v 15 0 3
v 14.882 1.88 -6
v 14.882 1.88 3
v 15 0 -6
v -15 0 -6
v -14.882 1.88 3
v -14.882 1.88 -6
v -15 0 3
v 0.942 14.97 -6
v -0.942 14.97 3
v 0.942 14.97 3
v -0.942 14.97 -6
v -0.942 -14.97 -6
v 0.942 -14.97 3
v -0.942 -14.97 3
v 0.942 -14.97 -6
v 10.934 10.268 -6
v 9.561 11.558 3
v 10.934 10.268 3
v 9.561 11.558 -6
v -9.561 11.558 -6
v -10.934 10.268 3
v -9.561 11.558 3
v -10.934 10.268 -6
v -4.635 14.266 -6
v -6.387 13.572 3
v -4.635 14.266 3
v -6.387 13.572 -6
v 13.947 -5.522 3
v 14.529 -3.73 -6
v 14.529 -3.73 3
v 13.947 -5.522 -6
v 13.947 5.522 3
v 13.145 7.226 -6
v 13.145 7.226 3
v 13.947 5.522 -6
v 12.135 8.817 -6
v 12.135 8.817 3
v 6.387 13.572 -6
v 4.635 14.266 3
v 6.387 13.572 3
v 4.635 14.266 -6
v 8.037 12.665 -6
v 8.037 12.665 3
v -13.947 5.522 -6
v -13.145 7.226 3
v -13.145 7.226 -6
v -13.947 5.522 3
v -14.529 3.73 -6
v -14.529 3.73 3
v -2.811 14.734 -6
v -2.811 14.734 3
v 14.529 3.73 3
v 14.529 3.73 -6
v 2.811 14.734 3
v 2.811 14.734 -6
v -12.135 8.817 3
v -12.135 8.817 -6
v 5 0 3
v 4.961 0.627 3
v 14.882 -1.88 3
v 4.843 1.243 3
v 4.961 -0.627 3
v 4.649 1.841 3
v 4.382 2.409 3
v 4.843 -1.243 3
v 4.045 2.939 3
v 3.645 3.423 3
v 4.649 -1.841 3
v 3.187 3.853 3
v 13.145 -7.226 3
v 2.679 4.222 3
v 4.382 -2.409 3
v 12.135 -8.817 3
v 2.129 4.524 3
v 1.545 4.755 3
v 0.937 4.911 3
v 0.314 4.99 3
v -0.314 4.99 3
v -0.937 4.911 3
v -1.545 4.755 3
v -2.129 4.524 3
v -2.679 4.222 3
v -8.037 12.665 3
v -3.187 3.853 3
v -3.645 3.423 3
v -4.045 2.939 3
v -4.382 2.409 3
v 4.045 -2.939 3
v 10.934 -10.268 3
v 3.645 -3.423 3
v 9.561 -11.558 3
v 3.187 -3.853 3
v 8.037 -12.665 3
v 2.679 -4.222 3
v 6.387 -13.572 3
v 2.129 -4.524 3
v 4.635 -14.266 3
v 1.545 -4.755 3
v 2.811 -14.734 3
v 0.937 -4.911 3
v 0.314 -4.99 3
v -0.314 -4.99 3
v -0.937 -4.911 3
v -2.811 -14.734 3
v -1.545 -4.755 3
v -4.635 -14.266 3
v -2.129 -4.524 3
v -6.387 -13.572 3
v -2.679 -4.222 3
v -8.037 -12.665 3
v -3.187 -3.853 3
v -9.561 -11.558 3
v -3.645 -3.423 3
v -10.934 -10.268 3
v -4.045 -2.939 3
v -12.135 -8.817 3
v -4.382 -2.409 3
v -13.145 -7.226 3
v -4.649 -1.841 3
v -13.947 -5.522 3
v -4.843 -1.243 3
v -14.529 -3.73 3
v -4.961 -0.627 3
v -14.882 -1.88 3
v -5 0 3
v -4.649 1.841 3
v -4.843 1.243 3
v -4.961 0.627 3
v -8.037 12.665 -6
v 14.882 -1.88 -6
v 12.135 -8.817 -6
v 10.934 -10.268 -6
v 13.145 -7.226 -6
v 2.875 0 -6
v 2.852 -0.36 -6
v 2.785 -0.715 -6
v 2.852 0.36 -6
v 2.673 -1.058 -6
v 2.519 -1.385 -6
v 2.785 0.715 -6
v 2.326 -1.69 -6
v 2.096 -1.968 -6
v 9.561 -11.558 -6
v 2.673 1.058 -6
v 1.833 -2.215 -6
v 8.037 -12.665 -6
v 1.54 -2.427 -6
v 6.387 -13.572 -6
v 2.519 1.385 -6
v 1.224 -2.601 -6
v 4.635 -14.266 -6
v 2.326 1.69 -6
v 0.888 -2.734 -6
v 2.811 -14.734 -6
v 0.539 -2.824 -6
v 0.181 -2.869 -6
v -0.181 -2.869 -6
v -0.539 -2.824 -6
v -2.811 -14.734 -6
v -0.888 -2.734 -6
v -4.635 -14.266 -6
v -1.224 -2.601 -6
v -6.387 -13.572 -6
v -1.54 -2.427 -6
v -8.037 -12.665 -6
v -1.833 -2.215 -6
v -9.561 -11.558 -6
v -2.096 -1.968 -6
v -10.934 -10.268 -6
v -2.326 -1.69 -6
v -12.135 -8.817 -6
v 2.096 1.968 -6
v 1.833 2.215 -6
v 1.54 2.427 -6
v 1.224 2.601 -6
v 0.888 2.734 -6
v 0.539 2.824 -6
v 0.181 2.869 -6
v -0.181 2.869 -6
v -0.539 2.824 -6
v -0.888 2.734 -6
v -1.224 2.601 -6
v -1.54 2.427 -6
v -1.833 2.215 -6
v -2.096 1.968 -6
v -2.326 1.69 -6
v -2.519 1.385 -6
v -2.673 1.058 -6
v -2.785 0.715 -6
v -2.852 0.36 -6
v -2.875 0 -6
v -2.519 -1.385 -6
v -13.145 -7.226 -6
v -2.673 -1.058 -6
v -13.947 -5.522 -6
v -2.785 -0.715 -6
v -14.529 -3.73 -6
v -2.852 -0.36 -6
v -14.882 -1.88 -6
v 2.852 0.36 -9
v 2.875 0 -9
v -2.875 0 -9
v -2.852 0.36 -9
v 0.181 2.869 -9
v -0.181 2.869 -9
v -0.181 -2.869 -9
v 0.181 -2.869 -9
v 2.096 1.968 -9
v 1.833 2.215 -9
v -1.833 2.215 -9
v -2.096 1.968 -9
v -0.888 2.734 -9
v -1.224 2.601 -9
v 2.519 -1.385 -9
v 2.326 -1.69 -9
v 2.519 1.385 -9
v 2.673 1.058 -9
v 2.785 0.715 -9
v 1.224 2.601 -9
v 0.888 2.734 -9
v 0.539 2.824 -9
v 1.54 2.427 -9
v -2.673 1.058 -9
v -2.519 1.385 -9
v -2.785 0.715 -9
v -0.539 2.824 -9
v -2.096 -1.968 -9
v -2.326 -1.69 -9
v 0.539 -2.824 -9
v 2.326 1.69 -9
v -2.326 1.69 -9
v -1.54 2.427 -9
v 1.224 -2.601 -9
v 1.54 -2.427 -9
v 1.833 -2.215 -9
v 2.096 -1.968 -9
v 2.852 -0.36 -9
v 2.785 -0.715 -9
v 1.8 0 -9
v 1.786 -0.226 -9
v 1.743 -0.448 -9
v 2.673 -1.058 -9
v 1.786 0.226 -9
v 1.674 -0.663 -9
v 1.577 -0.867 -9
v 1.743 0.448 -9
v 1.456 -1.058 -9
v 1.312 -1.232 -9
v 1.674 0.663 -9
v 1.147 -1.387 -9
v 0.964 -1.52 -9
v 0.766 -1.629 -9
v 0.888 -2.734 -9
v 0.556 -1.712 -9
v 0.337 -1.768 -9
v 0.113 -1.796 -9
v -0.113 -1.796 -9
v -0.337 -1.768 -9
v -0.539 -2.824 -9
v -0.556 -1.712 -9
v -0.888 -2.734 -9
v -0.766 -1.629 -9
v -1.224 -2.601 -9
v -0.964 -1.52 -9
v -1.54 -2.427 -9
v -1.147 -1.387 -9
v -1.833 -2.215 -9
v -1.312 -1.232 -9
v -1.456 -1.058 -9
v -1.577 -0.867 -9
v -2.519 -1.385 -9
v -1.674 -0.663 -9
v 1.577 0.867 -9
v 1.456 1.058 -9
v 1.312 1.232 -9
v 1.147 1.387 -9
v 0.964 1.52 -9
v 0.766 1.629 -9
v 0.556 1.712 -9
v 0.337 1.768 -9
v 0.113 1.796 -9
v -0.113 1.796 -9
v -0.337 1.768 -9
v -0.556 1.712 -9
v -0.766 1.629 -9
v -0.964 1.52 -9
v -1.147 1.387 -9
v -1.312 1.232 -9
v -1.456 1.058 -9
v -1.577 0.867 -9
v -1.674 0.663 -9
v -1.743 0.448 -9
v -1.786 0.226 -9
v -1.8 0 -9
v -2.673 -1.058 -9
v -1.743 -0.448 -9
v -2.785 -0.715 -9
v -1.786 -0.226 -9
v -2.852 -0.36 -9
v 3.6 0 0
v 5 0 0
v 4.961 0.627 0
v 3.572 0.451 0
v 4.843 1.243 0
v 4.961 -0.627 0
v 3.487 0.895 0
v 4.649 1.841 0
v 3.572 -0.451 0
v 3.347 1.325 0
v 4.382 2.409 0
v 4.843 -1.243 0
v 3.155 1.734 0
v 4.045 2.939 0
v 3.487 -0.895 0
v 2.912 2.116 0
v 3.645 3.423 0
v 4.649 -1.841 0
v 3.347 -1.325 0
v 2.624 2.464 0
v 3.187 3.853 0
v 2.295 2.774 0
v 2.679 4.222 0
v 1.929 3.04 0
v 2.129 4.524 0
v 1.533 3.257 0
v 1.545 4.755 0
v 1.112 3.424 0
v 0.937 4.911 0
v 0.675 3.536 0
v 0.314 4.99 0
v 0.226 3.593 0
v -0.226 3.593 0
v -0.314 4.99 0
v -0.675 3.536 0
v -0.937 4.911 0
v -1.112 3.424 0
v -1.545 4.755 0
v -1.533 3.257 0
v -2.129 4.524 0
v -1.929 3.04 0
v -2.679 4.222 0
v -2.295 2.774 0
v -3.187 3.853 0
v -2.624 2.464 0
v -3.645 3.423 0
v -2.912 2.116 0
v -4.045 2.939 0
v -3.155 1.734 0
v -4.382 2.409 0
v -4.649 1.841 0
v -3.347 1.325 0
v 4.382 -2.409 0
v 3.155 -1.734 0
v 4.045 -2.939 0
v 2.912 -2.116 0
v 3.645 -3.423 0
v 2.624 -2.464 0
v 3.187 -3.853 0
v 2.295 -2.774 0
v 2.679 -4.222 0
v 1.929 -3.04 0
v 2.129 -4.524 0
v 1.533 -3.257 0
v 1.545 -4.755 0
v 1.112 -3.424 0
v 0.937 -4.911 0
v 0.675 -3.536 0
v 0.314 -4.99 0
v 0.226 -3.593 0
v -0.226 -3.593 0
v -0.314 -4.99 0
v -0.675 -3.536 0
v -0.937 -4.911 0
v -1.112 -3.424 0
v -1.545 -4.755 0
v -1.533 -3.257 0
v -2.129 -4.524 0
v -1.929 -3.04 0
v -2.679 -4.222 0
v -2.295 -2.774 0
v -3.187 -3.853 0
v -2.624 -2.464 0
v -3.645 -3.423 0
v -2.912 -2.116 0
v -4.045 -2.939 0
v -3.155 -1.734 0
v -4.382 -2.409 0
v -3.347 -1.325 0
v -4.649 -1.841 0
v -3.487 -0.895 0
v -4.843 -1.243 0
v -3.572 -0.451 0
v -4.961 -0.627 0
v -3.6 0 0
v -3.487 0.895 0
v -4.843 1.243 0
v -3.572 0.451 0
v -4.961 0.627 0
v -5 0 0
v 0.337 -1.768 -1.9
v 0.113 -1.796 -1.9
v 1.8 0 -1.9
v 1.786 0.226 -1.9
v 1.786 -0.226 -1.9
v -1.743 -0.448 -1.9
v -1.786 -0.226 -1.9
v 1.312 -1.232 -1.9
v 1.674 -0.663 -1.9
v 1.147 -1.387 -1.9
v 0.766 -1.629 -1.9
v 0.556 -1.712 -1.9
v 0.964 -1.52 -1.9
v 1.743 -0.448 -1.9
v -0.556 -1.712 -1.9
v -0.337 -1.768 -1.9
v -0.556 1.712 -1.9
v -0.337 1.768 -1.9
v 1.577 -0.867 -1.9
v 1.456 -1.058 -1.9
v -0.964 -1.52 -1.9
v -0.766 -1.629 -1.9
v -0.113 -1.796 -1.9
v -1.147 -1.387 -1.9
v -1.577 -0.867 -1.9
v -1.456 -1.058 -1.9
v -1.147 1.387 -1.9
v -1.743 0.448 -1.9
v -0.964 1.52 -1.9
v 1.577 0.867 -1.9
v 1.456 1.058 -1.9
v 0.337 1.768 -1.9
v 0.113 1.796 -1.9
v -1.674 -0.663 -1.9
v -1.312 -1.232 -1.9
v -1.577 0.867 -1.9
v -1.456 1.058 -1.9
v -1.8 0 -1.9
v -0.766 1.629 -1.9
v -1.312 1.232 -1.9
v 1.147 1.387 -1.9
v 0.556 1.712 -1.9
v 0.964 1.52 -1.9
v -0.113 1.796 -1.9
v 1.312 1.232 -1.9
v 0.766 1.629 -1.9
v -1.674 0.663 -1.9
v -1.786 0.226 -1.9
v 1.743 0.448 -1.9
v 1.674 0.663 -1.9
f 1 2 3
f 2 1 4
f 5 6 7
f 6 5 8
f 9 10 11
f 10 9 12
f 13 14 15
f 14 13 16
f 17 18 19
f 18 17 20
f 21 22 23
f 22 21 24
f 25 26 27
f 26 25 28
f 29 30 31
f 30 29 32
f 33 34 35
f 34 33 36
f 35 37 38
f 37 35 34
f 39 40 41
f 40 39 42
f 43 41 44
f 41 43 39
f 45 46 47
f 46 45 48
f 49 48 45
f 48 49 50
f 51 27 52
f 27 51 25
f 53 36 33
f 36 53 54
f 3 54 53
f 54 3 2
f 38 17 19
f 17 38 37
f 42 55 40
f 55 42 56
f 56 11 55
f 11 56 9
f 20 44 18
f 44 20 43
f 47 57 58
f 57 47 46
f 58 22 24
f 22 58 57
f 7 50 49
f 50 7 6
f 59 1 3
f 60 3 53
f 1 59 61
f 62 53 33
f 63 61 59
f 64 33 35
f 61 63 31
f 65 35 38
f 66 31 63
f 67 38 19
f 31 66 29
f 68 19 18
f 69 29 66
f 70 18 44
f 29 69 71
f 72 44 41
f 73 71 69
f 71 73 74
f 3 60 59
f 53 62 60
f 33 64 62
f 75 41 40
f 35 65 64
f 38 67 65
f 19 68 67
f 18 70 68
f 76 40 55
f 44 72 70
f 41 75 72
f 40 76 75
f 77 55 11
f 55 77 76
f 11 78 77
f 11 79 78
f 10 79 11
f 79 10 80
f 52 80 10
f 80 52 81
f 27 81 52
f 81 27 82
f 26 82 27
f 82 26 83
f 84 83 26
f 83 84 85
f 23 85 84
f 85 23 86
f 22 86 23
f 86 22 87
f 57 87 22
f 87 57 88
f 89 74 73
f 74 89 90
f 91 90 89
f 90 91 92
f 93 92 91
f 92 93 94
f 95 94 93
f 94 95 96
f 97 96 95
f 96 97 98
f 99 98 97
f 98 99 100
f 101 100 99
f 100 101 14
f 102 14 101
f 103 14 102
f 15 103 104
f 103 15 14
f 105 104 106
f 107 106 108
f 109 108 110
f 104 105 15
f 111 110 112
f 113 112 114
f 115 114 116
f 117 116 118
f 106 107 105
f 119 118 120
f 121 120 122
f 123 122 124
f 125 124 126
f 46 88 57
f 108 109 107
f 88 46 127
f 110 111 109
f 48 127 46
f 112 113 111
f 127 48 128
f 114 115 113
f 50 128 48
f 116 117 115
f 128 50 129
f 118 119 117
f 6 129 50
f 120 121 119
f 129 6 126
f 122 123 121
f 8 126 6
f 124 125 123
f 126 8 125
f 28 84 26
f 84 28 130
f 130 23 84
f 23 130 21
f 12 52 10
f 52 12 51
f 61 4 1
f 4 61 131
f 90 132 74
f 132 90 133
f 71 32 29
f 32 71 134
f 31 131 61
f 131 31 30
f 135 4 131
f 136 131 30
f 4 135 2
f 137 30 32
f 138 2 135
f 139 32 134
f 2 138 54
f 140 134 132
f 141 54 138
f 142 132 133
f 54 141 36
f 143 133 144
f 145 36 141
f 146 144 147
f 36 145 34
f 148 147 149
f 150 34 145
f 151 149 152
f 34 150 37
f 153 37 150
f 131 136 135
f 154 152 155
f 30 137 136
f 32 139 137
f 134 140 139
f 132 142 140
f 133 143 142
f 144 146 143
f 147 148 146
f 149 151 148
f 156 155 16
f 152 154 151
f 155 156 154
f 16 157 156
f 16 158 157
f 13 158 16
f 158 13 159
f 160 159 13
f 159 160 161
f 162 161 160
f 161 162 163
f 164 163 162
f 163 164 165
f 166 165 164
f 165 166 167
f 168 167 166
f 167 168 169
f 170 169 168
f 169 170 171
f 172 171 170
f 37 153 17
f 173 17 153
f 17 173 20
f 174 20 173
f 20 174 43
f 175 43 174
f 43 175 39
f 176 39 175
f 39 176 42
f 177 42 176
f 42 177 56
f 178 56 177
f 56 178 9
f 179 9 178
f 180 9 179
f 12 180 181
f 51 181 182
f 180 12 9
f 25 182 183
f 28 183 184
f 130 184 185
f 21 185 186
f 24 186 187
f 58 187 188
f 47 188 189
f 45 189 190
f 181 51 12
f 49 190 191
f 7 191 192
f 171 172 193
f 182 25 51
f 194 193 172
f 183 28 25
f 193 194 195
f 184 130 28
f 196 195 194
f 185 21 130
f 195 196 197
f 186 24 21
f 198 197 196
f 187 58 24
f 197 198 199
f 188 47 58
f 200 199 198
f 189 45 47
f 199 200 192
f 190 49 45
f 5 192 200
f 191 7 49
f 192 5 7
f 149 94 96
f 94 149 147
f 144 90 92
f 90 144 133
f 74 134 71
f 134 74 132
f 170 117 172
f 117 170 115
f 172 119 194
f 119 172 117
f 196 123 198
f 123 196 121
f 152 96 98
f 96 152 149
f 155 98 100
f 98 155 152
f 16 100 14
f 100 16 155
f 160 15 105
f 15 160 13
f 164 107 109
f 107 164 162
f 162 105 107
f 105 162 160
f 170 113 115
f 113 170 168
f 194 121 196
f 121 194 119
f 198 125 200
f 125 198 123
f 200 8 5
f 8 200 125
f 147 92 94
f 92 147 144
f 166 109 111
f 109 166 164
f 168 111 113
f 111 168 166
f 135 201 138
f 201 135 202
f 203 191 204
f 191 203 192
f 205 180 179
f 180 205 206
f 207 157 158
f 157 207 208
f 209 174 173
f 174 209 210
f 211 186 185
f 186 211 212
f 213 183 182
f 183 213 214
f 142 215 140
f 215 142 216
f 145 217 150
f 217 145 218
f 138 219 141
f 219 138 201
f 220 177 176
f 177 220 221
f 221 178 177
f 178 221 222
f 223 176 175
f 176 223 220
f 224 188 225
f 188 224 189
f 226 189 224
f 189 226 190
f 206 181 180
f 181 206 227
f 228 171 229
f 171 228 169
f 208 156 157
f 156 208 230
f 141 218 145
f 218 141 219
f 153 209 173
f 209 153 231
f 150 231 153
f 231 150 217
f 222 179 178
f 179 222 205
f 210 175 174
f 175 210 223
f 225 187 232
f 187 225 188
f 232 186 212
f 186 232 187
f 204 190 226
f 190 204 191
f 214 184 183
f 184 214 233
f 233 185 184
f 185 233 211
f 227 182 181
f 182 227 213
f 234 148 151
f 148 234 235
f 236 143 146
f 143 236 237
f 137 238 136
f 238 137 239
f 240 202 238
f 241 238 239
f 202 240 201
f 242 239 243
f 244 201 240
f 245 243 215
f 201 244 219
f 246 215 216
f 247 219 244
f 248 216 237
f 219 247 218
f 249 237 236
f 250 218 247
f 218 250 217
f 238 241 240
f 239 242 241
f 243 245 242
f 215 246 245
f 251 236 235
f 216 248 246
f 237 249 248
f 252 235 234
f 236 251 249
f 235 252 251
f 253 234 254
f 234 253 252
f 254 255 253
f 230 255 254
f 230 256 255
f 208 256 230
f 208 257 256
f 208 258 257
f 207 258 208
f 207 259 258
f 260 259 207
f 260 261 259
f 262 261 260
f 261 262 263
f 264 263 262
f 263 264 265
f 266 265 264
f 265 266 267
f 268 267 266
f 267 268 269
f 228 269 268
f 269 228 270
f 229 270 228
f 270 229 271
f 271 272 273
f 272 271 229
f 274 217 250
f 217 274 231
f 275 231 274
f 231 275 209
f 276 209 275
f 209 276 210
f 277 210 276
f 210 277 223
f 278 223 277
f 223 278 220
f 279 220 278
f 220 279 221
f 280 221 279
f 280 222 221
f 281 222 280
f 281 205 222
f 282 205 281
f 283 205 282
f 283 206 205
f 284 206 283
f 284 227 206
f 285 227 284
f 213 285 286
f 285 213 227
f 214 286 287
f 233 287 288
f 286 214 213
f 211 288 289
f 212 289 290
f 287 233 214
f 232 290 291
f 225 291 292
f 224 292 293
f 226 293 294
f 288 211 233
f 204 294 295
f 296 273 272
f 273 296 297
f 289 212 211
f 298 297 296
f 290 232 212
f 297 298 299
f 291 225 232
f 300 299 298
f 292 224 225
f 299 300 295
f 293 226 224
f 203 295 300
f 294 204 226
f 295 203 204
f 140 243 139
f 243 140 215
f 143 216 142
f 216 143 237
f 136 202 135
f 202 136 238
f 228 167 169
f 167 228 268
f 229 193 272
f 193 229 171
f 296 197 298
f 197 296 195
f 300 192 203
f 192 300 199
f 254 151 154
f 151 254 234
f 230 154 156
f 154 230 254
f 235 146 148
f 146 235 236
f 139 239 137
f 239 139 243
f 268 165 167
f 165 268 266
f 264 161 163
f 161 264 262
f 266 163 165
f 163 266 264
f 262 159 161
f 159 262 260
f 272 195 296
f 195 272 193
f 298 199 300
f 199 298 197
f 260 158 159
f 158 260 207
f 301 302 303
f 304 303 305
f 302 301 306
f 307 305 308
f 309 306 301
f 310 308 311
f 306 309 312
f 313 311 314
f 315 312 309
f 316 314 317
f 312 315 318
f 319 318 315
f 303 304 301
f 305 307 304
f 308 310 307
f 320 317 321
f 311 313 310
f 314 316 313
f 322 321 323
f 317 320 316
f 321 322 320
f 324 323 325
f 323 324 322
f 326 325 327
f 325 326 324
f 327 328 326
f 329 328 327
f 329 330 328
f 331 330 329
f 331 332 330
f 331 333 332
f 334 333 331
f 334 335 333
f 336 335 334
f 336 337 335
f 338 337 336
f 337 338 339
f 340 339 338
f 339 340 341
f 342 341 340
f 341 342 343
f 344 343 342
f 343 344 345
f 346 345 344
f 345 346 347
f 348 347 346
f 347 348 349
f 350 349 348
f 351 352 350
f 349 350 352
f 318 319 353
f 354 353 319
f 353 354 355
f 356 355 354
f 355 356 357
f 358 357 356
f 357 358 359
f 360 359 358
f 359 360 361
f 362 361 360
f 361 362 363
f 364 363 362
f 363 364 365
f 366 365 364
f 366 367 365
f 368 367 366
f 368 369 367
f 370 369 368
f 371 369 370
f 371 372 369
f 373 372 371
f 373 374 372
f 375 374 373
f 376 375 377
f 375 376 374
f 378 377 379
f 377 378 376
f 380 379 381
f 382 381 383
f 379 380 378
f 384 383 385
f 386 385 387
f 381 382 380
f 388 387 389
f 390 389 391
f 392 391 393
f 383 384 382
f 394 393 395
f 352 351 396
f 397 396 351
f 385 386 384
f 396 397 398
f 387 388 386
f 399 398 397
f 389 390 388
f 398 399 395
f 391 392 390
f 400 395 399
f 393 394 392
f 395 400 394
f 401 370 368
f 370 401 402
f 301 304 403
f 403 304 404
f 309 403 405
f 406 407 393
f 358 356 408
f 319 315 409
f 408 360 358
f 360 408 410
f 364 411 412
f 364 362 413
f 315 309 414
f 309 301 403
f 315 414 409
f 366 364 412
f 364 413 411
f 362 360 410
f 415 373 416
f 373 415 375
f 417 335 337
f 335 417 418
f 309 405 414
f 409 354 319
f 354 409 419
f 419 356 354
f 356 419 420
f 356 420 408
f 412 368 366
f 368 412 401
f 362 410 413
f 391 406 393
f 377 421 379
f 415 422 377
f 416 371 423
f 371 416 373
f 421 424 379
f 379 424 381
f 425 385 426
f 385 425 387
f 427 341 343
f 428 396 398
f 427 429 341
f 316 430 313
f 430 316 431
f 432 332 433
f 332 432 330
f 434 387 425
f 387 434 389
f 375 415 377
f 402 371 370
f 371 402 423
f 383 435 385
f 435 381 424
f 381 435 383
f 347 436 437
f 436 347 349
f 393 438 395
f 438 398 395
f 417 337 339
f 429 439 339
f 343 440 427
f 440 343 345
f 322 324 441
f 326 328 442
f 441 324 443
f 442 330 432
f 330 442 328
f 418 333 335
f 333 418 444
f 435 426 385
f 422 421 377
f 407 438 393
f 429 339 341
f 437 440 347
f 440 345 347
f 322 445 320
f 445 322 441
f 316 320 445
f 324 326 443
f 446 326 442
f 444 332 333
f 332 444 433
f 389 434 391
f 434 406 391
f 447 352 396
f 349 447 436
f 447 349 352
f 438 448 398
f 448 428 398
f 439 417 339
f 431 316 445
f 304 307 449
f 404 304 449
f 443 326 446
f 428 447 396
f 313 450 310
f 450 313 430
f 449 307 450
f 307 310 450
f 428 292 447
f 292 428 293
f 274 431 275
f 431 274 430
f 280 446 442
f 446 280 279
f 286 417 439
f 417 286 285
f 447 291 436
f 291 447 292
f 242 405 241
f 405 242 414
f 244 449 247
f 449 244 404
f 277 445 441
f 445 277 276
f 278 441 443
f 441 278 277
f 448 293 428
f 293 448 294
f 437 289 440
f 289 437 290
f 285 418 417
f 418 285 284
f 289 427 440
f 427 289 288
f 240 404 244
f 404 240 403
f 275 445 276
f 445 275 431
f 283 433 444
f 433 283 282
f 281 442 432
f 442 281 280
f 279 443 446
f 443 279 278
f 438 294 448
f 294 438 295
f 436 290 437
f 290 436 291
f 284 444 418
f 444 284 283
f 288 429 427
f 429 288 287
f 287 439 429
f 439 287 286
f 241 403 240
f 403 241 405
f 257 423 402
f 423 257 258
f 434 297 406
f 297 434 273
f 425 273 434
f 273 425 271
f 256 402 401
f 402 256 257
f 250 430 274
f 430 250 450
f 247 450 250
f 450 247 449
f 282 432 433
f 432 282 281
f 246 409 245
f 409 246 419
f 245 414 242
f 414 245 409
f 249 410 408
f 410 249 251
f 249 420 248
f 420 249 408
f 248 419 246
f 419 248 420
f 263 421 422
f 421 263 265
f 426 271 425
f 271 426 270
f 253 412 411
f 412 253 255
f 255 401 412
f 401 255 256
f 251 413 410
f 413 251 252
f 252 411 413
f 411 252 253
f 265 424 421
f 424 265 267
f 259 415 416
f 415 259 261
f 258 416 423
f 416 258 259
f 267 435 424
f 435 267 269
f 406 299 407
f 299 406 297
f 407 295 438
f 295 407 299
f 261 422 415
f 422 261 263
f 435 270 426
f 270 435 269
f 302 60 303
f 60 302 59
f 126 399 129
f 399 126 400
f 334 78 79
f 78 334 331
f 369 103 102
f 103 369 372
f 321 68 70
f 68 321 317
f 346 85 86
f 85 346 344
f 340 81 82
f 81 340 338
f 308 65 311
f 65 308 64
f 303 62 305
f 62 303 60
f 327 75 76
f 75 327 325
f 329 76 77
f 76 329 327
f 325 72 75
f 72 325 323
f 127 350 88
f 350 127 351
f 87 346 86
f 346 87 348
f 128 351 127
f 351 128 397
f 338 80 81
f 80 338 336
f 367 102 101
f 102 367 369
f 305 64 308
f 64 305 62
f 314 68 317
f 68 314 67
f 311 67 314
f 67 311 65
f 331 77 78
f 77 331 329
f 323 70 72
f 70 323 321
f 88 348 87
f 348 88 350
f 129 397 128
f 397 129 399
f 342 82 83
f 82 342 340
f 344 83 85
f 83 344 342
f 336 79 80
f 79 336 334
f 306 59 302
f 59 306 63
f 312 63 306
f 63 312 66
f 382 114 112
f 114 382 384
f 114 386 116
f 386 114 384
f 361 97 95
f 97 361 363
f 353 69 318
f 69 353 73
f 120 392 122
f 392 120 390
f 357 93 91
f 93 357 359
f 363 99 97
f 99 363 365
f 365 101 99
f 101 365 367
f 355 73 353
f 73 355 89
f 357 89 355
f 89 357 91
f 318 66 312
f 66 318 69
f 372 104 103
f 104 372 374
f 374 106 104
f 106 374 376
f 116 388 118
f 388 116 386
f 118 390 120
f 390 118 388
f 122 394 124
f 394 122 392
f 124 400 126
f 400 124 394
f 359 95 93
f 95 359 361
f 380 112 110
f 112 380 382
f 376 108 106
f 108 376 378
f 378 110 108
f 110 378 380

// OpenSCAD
$fn = 50;

difference() {
	union() {
		translate(v = [0, 0, -6.0]) {
			cylinder(h = 9, r = 15.0);
		}
		#translate(v = [0, 0, -9.0]) {
			cylinder(h = 9, r = 2.875);
		}
	}
	union() {
		translate(v = [0, 0, 0]) {
			rotate(a = [0, 0, 0]) {
				difference() {
					union() {
						translate(v = [0, 0, -9.0]) {
							cylinder(h = 9, r = 1.5);
						}
						translate(v = [0, 0, -1.9]) {
							cylinder(h = 1.9, r1 = 1.8, r2 = 3.6);
						}
						translate(v = [0, 0, -9.0]) {
							cylinder(h = 9, r = 1.8);
						}
						translate(v = [0, 0, -9.0]) {
							cylinder(h = 9, r = 1.5);
						}
					}
					union();
				}
			}
		}
		#cylinder(h = 3, r = 5.0);
	}
}
